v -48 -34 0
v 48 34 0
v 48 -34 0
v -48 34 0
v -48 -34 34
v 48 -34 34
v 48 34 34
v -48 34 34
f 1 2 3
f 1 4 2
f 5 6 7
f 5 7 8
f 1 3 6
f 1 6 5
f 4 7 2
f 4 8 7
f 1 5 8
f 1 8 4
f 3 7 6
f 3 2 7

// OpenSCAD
// Gemini 4 Argon Parametric OpenSCAD — PRT-08: Vented GRBL / ESP32 3-Axis Stepper Electronics Housing
$fn = 64;
translate([-48.00, -34.00, 0])
  cube([96, 68, 34]);
